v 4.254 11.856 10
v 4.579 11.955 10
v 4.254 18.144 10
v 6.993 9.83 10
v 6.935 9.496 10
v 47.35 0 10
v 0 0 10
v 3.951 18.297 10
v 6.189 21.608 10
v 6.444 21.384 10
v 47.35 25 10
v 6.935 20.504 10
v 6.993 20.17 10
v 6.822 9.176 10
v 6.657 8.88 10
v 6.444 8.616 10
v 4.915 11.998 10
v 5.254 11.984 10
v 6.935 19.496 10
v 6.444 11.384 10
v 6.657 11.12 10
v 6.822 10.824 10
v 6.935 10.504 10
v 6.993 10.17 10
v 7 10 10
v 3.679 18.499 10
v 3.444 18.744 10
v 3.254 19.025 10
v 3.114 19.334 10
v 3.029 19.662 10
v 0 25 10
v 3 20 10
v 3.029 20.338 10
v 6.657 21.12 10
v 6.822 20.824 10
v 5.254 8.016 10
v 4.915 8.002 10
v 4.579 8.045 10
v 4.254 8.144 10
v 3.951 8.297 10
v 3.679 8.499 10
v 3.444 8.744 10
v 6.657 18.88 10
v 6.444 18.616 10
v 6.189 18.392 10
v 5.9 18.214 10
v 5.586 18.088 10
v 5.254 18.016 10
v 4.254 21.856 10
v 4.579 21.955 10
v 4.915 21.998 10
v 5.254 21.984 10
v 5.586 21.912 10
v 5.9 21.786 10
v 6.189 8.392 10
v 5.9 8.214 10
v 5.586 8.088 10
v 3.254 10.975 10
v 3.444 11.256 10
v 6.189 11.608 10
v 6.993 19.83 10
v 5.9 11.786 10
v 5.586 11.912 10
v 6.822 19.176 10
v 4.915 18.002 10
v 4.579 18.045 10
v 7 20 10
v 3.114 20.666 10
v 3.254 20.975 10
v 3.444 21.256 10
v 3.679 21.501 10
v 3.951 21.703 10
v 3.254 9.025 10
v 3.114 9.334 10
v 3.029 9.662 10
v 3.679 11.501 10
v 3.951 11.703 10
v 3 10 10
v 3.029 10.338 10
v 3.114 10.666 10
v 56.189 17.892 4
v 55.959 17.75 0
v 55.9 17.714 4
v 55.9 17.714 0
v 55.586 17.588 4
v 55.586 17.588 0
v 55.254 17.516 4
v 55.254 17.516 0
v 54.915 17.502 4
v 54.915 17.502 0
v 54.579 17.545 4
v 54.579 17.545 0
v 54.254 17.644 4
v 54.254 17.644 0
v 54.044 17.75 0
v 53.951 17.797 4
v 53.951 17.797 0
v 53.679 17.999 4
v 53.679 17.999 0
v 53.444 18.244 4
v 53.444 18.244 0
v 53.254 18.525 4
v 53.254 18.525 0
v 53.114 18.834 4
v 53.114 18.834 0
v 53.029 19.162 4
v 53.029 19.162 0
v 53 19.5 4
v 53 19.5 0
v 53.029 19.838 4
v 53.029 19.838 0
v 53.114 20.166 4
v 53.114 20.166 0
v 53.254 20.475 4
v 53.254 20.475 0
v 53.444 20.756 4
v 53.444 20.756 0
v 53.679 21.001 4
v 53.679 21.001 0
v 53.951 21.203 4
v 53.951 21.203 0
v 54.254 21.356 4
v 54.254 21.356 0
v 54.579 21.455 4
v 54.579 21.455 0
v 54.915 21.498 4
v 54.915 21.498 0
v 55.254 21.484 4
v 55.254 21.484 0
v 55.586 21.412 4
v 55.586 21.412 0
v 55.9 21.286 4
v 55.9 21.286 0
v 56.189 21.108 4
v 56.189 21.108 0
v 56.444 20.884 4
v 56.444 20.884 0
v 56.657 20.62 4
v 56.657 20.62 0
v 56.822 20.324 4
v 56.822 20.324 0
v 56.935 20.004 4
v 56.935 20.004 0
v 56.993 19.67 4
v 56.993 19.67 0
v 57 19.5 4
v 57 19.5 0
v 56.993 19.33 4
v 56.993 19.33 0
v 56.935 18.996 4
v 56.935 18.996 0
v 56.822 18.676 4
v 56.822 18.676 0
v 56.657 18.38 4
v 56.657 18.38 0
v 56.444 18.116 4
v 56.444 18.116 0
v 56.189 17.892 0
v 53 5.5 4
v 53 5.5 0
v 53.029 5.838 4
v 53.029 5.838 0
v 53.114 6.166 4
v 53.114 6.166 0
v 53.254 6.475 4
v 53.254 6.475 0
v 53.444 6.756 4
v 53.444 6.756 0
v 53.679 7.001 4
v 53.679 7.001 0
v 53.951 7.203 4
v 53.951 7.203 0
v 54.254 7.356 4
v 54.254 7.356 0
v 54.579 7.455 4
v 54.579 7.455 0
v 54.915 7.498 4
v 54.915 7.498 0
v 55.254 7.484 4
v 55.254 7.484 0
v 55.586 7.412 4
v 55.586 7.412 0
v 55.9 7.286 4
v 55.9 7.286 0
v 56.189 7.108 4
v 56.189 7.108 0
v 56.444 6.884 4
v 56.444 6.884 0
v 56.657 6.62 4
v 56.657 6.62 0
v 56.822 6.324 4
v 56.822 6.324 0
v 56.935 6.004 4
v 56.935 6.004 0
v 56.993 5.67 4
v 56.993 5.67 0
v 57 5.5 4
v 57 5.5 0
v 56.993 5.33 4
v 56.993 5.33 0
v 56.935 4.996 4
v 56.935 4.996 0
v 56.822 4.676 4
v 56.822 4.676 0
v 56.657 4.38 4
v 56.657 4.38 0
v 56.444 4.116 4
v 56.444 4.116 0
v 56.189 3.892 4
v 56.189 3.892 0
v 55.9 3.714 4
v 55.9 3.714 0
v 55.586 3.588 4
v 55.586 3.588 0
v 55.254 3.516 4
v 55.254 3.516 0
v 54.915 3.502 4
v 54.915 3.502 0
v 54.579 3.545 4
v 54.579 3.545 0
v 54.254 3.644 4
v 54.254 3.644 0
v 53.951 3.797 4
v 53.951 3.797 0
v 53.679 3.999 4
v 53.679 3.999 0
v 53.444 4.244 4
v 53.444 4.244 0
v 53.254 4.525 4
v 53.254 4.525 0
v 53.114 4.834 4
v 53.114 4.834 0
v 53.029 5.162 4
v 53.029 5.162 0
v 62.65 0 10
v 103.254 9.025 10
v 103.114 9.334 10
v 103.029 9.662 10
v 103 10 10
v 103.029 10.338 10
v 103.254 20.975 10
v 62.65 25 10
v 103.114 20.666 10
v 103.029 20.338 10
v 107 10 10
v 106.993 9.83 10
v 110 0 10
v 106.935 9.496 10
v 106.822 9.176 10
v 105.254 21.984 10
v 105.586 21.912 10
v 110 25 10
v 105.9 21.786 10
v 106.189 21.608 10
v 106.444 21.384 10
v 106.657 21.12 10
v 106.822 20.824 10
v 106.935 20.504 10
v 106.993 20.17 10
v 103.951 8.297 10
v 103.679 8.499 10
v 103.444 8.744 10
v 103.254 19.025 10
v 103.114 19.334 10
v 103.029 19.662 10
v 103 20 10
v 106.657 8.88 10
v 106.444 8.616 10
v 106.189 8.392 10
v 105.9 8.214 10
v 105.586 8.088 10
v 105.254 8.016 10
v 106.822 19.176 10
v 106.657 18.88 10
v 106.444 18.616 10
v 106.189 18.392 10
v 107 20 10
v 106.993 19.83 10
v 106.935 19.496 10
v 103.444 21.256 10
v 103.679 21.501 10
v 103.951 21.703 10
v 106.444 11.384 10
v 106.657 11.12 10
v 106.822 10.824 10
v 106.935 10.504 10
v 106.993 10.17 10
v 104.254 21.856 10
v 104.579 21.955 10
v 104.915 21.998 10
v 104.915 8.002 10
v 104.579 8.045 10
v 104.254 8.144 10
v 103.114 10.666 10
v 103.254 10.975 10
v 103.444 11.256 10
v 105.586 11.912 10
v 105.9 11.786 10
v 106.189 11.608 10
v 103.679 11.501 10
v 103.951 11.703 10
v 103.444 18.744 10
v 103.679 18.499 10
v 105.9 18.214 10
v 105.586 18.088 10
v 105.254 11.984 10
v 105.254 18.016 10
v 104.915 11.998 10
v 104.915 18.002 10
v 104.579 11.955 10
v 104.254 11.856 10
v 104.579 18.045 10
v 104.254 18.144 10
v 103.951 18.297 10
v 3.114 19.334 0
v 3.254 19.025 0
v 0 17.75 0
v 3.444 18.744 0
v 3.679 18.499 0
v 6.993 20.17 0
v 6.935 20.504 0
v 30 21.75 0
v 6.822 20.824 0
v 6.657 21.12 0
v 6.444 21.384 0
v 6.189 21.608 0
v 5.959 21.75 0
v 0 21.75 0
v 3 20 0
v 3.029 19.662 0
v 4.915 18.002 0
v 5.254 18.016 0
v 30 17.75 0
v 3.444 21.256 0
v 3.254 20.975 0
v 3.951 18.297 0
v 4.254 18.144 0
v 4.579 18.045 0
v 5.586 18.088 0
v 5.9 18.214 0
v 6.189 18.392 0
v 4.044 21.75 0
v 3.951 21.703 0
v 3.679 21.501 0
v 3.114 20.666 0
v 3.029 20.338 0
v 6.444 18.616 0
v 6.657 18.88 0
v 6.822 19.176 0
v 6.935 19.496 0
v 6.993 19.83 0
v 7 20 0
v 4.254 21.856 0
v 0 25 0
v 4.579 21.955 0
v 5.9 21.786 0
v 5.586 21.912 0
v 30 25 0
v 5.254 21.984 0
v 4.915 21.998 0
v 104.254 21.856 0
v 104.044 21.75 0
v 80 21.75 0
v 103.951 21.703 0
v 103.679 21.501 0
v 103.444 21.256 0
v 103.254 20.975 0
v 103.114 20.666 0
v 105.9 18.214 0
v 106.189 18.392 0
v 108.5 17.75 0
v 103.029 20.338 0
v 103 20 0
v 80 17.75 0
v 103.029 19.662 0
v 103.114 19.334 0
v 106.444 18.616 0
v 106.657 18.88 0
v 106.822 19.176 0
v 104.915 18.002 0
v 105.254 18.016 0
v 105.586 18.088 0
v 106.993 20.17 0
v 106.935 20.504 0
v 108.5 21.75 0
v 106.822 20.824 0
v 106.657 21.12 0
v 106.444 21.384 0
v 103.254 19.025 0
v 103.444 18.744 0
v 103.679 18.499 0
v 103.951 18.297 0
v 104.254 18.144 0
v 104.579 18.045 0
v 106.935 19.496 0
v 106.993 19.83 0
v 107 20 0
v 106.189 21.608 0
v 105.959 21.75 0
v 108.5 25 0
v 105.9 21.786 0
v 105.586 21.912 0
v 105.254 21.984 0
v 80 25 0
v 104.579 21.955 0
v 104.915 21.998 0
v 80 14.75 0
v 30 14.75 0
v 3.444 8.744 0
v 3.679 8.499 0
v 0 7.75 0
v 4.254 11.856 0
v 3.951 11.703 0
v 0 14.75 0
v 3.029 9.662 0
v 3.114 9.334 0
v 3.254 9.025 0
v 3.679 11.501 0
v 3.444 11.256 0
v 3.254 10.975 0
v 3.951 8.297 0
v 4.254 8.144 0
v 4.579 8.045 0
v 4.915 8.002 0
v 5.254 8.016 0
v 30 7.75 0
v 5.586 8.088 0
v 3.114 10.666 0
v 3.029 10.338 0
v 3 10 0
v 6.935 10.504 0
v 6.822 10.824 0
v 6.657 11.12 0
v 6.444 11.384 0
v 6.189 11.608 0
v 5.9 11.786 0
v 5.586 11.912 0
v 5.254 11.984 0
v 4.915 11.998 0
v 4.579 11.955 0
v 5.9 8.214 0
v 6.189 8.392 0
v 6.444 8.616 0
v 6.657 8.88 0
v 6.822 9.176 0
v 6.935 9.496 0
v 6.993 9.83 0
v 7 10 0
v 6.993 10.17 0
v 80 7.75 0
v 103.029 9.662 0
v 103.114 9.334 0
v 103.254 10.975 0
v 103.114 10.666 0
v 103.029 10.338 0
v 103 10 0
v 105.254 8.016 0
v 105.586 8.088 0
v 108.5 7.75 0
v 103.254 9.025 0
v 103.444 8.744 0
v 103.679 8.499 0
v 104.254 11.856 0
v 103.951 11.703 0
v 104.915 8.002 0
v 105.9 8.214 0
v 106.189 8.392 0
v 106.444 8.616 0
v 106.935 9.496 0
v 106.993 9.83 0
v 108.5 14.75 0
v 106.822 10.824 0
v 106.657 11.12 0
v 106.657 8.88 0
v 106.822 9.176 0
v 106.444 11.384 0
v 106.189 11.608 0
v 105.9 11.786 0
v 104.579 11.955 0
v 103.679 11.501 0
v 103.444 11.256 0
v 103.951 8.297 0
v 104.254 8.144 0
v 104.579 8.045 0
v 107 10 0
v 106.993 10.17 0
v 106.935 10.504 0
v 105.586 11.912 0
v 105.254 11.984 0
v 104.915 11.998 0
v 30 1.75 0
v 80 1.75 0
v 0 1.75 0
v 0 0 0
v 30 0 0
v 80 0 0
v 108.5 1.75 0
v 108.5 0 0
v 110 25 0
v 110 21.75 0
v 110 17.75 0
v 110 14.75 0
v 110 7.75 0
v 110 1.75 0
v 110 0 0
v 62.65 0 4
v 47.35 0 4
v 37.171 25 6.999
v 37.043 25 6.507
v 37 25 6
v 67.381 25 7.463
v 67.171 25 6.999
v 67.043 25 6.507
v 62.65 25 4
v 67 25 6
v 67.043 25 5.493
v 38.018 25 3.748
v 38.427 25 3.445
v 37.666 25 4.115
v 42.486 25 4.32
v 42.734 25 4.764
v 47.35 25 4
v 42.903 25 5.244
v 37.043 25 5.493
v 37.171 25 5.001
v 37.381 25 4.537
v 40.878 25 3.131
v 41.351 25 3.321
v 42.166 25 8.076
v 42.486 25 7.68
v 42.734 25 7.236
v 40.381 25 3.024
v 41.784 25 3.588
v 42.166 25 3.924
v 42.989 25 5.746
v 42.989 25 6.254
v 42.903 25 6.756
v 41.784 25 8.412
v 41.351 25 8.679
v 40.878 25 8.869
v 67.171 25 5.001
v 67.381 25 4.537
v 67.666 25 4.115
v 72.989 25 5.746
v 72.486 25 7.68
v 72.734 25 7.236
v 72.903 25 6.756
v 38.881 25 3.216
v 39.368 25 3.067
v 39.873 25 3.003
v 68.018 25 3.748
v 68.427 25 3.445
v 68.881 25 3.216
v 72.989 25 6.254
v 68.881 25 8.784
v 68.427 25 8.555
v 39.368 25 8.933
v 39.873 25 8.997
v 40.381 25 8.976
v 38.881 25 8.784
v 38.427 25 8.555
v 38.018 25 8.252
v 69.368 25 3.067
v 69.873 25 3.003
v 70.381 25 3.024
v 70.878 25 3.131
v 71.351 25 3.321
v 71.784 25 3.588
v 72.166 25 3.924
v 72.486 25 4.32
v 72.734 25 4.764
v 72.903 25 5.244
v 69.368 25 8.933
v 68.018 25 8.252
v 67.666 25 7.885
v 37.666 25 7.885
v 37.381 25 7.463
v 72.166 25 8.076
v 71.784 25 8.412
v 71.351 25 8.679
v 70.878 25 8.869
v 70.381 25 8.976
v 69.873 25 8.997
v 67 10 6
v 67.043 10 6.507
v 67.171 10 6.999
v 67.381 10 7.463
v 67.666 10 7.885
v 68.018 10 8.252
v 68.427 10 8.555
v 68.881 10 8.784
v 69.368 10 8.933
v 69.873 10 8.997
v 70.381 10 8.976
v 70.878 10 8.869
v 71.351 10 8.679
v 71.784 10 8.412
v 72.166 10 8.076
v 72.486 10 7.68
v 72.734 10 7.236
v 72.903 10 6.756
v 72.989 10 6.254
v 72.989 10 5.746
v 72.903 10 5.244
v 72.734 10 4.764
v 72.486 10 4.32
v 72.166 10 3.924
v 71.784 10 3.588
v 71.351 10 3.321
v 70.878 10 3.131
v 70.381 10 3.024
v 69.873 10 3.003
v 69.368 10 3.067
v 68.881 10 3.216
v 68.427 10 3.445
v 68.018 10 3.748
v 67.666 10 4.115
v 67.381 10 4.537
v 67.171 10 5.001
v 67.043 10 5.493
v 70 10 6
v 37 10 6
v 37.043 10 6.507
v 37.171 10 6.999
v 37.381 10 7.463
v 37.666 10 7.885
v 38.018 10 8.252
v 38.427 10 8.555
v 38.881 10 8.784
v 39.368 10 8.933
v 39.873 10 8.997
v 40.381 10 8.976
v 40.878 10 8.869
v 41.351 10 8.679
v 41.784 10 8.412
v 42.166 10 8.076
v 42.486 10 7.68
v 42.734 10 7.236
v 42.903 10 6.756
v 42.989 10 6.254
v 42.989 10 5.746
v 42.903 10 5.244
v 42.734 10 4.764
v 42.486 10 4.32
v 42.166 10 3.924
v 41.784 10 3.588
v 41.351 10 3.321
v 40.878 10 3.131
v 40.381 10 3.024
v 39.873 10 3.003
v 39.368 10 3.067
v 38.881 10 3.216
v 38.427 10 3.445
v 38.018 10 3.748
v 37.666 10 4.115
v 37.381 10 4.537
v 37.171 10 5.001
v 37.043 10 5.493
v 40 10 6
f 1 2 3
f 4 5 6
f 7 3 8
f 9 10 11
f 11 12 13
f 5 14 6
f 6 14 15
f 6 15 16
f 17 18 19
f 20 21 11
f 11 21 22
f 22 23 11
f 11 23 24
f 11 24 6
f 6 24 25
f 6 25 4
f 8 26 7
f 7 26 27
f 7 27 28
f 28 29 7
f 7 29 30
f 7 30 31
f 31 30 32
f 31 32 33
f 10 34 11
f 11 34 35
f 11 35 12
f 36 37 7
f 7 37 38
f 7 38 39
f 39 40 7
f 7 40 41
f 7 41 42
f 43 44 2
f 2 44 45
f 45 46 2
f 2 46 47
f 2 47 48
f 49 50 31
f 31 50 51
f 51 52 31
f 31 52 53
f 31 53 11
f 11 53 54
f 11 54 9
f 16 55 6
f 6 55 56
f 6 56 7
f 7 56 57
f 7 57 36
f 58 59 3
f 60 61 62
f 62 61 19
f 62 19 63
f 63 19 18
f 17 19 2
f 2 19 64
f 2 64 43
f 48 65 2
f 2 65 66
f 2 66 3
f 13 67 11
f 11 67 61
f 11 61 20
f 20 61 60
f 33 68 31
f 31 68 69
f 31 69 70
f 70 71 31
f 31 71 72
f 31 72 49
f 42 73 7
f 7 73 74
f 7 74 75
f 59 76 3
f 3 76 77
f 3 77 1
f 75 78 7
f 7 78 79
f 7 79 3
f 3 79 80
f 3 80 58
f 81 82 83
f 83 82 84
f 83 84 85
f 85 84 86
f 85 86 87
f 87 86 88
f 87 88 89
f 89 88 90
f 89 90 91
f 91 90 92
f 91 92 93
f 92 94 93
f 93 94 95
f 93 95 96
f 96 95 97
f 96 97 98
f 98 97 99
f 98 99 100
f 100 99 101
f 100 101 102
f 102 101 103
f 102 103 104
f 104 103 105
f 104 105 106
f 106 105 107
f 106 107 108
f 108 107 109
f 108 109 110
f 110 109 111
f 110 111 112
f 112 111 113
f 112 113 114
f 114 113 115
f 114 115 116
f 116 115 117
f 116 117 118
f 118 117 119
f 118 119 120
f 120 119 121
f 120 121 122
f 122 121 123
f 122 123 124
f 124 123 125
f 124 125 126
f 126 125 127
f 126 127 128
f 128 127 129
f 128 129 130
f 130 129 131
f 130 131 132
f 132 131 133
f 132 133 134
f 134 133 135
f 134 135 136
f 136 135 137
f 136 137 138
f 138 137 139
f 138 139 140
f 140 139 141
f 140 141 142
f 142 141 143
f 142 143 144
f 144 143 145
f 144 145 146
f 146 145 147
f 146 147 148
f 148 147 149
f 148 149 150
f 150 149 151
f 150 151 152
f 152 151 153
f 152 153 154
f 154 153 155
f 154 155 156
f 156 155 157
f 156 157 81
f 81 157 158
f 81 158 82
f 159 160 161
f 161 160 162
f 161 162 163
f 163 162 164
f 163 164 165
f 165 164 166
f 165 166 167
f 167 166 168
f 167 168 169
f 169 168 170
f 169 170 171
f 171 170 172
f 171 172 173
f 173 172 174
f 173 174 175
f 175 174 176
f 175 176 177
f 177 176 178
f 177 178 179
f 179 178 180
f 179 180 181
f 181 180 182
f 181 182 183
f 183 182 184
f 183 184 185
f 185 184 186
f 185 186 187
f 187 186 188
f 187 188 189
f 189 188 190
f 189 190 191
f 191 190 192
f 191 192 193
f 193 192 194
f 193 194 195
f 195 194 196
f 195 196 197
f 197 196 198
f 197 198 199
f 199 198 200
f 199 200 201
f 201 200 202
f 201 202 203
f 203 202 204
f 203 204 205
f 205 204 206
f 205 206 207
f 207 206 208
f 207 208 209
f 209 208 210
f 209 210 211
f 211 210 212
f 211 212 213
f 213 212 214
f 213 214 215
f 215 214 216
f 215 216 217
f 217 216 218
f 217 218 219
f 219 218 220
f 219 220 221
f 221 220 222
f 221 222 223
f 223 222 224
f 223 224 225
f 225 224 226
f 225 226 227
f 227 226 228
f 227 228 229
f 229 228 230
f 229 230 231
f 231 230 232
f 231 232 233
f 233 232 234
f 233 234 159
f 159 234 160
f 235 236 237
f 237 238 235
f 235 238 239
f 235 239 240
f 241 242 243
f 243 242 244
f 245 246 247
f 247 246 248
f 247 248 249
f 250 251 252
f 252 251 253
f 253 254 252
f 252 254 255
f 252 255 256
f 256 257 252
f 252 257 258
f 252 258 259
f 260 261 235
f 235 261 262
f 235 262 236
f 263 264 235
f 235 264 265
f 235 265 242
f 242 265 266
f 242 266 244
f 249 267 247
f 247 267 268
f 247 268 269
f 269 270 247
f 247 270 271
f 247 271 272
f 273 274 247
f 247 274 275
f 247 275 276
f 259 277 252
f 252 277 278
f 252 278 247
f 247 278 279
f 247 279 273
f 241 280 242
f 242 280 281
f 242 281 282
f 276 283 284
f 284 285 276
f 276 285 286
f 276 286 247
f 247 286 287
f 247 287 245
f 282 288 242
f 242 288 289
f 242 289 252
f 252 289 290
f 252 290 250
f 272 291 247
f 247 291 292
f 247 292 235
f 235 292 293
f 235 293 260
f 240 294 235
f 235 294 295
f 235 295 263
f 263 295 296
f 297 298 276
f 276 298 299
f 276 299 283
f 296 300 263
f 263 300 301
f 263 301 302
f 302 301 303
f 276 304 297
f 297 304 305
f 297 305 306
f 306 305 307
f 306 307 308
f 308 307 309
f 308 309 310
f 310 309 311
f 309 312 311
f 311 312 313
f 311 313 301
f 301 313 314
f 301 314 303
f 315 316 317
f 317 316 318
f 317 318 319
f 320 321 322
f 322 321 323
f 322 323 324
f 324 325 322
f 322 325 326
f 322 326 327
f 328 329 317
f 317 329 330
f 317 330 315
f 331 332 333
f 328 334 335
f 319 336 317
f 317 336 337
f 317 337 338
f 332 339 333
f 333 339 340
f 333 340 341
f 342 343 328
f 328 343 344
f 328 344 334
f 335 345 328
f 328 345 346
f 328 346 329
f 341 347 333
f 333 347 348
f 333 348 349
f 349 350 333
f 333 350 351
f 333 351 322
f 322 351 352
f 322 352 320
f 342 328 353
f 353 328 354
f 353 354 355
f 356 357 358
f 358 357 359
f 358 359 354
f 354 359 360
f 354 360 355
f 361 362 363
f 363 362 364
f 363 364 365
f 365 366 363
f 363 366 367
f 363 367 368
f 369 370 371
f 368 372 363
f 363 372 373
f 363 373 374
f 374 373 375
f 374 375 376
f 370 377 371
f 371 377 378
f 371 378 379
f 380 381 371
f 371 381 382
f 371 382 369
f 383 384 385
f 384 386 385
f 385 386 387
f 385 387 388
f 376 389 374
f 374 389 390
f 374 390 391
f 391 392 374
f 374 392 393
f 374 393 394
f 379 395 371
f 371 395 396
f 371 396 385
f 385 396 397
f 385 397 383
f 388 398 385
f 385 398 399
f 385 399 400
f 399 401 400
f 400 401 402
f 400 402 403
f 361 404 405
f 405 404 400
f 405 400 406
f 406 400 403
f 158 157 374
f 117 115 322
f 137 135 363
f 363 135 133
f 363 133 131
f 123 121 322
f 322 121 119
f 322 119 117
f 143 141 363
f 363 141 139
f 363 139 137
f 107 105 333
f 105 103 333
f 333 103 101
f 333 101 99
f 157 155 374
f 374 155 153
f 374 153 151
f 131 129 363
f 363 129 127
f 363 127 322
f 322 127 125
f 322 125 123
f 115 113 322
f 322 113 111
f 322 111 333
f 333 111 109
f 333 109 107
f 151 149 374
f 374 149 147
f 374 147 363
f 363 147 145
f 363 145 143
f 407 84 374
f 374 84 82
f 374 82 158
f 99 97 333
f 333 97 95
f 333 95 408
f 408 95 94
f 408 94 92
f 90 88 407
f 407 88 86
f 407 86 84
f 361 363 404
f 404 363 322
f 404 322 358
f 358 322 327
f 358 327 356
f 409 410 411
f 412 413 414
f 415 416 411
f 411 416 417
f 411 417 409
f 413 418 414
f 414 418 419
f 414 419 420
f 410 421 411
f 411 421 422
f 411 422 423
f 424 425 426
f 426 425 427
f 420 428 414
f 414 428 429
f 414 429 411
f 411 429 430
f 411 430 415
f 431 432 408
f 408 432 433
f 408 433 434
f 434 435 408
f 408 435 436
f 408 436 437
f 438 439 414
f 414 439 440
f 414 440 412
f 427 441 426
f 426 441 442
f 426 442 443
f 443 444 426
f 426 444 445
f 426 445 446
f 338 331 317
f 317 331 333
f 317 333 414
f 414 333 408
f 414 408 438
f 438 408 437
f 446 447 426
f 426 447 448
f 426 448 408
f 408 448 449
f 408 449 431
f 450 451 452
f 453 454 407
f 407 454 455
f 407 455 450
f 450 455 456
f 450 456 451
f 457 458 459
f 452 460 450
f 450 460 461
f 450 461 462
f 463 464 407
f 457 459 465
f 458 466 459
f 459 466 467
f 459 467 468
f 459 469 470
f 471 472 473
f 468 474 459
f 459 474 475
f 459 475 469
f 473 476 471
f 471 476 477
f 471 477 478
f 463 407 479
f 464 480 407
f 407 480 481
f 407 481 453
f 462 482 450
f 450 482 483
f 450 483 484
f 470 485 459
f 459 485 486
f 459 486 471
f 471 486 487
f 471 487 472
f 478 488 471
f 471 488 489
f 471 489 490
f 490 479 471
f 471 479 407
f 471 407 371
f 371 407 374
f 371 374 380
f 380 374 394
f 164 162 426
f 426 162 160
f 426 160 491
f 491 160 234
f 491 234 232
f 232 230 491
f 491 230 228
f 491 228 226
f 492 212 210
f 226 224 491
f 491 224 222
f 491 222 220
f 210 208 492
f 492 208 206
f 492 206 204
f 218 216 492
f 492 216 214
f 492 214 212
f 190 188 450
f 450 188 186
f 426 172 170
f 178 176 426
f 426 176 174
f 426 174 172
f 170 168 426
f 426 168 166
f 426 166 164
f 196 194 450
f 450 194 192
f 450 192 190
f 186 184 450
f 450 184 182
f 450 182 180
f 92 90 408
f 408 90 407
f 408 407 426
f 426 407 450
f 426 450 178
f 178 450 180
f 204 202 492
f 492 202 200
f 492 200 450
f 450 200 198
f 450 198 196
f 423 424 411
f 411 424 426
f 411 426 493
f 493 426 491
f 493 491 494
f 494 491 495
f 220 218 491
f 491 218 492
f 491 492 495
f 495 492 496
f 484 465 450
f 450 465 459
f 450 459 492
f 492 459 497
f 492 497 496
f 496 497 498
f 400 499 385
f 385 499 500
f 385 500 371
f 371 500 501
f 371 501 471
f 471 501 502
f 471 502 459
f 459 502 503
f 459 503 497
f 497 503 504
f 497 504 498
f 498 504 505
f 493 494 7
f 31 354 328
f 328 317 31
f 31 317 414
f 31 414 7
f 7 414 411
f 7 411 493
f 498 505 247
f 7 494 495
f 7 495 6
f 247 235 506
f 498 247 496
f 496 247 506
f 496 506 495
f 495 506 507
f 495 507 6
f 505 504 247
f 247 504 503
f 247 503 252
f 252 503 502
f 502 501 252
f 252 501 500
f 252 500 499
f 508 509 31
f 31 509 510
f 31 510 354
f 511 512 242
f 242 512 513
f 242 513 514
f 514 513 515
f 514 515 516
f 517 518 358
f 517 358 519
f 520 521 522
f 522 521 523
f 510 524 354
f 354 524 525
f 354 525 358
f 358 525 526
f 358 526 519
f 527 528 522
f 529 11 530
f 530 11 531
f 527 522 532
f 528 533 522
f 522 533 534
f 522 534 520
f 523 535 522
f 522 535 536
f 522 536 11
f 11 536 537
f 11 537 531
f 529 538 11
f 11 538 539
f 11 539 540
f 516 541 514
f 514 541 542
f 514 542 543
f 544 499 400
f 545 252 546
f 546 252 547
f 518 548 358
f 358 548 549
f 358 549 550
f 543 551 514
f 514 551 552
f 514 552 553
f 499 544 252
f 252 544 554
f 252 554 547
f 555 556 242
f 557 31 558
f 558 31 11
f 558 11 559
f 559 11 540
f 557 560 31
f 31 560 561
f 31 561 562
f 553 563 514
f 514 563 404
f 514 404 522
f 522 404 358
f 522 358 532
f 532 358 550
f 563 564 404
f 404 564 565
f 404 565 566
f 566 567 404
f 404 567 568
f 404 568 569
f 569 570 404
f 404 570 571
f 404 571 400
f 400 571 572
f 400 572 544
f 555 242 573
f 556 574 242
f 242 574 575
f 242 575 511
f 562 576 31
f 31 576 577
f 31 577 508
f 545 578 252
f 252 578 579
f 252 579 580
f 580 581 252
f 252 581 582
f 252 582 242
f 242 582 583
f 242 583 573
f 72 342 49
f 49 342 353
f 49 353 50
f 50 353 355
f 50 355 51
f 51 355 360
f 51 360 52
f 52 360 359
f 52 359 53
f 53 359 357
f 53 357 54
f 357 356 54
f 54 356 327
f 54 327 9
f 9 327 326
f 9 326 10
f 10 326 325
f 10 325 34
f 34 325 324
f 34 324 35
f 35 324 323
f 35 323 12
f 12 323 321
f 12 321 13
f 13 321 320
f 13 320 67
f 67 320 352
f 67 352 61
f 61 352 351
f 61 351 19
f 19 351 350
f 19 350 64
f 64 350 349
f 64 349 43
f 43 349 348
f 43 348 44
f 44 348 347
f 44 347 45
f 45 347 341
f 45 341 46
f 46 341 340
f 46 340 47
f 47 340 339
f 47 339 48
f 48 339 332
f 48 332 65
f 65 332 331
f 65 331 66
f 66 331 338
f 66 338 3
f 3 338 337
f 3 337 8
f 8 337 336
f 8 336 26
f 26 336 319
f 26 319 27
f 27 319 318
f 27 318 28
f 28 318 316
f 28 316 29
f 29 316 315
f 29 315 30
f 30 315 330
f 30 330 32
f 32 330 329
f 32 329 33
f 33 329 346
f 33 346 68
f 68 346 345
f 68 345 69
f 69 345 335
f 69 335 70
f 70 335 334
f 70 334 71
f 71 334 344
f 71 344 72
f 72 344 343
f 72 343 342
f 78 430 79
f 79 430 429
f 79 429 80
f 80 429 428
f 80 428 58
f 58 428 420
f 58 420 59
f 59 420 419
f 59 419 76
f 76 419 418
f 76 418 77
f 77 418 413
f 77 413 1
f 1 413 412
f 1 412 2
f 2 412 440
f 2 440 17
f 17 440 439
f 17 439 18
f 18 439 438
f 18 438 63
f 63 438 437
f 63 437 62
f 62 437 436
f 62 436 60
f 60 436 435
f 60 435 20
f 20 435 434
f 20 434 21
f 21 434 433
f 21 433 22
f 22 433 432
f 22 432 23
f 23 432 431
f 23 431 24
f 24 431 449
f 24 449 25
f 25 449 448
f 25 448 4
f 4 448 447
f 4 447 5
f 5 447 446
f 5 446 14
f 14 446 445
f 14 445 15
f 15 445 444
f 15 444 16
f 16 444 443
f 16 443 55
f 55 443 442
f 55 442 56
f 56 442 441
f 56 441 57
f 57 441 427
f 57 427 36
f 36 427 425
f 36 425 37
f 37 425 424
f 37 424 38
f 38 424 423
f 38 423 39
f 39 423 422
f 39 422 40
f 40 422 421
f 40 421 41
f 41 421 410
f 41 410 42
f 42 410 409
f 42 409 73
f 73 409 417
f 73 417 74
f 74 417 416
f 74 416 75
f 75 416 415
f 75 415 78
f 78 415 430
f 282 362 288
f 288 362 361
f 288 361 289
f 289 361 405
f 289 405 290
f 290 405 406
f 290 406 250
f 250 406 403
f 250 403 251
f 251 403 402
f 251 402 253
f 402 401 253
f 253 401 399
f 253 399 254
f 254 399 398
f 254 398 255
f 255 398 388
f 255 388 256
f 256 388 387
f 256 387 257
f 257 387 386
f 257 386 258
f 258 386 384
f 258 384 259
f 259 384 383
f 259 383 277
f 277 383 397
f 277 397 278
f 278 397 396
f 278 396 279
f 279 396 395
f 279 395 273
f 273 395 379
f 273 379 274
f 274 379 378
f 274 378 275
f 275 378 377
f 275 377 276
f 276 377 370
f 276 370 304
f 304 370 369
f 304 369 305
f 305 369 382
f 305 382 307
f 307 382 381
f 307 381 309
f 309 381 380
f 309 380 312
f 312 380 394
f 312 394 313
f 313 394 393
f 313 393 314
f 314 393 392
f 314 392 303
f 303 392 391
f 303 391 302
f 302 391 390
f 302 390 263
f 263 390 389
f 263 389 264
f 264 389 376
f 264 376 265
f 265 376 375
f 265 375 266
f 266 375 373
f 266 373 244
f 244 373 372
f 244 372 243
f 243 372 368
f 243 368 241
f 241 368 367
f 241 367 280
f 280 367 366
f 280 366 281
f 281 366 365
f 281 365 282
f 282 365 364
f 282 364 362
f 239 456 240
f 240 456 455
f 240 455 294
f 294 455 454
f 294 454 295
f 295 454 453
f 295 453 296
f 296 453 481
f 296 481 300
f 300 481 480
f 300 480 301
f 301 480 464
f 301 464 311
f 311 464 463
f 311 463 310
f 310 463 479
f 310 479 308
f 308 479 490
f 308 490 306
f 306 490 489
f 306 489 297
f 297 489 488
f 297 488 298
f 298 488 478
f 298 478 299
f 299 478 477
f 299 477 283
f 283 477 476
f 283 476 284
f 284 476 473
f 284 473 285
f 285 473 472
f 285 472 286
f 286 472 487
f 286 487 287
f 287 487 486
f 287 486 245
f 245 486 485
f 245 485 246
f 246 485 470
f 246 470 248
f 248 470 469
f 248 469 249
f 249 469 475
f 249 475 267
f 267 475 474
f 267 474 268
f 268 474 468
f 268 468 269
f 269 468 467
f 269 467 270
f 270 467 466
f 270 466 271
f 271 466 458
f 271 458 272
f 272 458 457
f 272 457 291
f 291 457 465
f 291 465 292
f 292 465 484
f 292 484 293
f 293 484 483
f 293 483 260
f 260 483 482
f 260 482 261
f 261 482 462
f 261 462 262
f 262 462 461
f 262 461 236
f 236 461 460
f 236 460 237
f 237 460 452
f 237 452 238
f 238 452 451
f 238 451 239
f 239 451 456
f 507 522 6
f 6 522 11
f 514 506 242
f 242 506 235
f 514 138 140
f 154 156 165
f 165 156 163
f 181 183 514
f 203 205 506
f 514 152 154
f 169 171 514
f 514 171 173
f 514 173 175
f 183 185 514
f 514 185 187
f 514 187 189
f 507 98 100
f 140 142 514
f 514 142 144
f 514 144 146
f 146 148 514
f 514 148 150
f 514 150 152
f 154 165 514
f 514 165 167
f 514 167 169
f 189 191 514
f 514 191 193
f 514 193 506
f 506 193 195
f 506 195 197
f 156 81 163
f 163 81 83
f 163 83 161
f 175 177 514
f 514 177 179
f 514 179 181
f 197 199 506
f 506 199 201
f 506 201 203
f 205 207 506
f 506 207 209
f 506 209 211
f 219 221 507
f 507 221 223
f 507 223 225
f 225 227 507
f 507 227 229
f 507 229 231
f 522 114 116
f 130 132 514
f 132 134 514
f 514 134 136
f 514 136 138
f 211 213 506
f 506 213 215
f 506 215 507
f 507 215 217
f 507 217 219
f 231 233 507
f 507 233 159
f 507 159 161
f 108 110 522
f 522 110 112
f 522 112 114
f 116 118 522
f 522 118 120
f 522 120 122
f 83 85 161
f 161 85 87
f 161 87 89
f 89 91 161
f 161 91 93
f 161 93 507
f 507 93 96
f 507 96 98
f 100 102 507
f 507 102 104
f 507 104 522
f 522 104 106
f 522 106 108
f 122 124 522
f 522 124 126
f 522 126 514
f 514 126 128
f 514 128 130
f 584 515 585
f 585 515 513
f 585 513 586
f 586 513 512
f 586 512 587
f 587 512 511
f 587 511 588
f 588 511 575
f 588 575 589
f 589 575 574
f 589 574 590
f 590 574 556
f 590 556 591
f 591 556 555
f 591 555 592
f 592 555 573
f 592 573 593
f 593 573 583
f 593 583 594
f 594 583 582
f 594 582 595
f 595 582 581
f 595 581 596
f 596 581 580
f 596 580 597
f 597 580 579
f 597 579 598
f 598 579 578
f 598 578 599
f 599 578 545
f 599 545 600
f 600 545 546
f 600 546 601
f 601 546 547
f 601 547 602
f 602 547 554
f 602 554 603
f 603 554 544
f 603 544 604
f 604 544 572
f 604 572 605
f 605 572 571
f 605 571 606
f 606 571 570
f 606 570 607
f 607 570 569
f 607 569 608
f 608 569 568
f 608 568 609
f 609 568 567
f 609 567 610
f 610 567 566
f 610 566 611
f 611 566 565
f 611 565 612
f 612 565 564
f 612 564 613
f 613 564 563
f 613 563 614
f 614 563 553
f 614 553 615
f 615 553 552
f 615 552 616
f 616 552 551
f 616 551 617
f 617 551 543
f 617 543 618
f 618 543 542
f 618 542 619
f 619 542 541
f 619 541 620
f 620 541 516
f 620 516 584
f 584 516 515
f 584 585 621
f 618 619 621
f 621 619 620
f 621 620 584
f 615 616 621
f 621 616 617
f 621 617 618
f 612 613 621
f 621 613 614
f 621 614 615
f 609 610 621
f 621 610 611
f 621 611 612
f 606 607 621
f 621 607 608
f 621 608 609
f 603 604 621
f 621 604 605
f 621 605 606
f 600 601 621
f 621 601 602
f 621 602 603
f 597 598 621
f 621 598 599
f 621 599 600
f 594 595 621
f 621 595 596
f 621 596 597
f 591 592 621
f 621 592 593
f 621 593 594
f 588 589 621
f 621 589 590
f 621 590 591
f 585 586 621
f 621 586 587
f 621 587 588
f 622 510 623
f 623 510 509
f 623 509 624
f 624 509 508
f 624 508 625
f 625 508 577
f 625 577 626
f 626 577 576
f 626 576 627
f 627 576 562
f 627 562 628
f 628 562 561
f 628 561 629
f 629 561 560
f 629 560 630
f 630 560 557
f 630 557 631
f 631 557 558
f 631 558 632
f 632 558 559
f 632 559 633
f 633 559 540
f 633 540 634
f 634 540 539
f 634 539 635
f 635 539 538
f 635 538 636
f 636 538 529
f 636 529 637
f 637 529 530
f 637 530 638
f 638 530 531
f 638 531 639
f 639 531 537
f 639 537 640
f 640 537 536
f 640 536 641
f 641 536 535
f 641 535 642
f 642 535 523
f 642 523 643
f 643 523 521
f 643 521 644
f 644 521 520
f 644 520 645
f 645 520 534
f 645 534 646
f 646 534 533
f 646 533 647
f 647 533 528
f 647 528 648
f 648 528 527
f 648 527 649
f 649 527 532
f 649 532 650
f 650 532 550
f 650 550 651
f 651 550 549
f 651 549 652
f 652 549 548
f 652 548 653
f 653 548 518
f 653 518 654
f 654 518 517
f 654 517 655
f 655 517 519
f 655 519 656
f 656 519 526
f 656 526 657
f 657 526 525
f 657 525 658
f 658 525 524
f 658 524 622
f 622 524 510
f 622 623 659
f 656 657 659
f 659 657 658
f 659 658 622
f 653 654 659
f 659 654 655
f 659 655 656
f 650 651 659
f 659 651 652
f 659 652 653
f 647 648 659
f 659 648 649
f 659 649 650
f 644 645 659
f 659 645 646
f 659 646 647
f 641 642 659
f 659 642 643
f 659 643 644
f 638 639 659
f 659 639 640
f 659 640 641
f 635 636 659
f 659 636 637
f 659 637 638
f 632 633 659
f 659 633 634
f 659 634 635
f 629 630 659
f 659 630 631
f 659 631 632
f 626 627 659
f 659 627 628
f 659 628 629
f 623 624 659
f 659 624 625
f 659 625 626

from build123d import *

# Parameters (mm, degrees)
ESQUISSE1_W             = 110
ESQUISSE1_H             = 25
ESQUISSE1_R             = 2
BOSS_EXTRU_1_DEPTH      = 10
ESQUISSE2_W             = 15.3
ESQUISSE2_H             = 25
ENL_V_MAT_EXTRU_1_DEPTH = 6
ESQUISSE3_R             = 3
ENL_V_MAT_EXTRU_2_DEPTH = 15


with BuildPart() as part:
    # Esquisse1 → Boss.-Extru.1 (new body)
    with BuildSketch(Plane.XY):
        with Locations((55, 12.5)):
            Rectangle(ESQUISSE1_W, ESQUISSE1_H)
        with Locations((5, 20)):
            Circle(ESQUISSE1_R, mode=Mode.SUBTRACT)
        with Locations((5, 10)):
            Circle(ESQUISSE1_R, mode=Mode.SUBTRACT)
        with Locations((105, 20)):
            Circle(ESQUISSE1_R, mode=Mode.SUBTRACT)
        with Locations((105, 10)):
            Circle(ESQUISSE1_R, mode=Mode.SUBTRACT)
        with Locations((55, 19.5)):
            Circle(ESQUISSE1_R, mode=Mode.SUBTRACT)
        with Locations((55, 5.5)):
            Circle(ESQUISSE1_R, mode=Mode.SUBTRACT)
    extrude(amount=BOSS_EXTRU_1_DEPTH)

    # Esquisse2 → Enlèv. mat.-Extru.1 (cut)
    with BuildSketch(Plane.XY.offset(10)):
        with Locations((55, 12.5)):
            Rectangle(ESQUISSE2_W, ESQUISSE2_H)
    extrude(amount=-ENL_V_MAT_EXTRU_1_DEPTH, mode=Mode.SUBTRACT)

    # Esquisse3 → Enlèv. mat.-Extru.2 (cut)
    with BuildSketch(Plane(origin=(0, 25, 0), x_dir=(1, 0, 0), z_dir=(0, 1, 0))):
        with Locations(Location((70, -6, 0), (0, 0, 180))):
            Circle(ESQUISSE3_R)
        with Locations(Location((40, -6, 0), (0, 0, 180))):
            Circle(ESQUISSE3_R)
    extrude(amount=-ENL_V_MAT_EXTRU_2_DEPTH, mode=Mode.SUBTRACT)


solid = part.part
